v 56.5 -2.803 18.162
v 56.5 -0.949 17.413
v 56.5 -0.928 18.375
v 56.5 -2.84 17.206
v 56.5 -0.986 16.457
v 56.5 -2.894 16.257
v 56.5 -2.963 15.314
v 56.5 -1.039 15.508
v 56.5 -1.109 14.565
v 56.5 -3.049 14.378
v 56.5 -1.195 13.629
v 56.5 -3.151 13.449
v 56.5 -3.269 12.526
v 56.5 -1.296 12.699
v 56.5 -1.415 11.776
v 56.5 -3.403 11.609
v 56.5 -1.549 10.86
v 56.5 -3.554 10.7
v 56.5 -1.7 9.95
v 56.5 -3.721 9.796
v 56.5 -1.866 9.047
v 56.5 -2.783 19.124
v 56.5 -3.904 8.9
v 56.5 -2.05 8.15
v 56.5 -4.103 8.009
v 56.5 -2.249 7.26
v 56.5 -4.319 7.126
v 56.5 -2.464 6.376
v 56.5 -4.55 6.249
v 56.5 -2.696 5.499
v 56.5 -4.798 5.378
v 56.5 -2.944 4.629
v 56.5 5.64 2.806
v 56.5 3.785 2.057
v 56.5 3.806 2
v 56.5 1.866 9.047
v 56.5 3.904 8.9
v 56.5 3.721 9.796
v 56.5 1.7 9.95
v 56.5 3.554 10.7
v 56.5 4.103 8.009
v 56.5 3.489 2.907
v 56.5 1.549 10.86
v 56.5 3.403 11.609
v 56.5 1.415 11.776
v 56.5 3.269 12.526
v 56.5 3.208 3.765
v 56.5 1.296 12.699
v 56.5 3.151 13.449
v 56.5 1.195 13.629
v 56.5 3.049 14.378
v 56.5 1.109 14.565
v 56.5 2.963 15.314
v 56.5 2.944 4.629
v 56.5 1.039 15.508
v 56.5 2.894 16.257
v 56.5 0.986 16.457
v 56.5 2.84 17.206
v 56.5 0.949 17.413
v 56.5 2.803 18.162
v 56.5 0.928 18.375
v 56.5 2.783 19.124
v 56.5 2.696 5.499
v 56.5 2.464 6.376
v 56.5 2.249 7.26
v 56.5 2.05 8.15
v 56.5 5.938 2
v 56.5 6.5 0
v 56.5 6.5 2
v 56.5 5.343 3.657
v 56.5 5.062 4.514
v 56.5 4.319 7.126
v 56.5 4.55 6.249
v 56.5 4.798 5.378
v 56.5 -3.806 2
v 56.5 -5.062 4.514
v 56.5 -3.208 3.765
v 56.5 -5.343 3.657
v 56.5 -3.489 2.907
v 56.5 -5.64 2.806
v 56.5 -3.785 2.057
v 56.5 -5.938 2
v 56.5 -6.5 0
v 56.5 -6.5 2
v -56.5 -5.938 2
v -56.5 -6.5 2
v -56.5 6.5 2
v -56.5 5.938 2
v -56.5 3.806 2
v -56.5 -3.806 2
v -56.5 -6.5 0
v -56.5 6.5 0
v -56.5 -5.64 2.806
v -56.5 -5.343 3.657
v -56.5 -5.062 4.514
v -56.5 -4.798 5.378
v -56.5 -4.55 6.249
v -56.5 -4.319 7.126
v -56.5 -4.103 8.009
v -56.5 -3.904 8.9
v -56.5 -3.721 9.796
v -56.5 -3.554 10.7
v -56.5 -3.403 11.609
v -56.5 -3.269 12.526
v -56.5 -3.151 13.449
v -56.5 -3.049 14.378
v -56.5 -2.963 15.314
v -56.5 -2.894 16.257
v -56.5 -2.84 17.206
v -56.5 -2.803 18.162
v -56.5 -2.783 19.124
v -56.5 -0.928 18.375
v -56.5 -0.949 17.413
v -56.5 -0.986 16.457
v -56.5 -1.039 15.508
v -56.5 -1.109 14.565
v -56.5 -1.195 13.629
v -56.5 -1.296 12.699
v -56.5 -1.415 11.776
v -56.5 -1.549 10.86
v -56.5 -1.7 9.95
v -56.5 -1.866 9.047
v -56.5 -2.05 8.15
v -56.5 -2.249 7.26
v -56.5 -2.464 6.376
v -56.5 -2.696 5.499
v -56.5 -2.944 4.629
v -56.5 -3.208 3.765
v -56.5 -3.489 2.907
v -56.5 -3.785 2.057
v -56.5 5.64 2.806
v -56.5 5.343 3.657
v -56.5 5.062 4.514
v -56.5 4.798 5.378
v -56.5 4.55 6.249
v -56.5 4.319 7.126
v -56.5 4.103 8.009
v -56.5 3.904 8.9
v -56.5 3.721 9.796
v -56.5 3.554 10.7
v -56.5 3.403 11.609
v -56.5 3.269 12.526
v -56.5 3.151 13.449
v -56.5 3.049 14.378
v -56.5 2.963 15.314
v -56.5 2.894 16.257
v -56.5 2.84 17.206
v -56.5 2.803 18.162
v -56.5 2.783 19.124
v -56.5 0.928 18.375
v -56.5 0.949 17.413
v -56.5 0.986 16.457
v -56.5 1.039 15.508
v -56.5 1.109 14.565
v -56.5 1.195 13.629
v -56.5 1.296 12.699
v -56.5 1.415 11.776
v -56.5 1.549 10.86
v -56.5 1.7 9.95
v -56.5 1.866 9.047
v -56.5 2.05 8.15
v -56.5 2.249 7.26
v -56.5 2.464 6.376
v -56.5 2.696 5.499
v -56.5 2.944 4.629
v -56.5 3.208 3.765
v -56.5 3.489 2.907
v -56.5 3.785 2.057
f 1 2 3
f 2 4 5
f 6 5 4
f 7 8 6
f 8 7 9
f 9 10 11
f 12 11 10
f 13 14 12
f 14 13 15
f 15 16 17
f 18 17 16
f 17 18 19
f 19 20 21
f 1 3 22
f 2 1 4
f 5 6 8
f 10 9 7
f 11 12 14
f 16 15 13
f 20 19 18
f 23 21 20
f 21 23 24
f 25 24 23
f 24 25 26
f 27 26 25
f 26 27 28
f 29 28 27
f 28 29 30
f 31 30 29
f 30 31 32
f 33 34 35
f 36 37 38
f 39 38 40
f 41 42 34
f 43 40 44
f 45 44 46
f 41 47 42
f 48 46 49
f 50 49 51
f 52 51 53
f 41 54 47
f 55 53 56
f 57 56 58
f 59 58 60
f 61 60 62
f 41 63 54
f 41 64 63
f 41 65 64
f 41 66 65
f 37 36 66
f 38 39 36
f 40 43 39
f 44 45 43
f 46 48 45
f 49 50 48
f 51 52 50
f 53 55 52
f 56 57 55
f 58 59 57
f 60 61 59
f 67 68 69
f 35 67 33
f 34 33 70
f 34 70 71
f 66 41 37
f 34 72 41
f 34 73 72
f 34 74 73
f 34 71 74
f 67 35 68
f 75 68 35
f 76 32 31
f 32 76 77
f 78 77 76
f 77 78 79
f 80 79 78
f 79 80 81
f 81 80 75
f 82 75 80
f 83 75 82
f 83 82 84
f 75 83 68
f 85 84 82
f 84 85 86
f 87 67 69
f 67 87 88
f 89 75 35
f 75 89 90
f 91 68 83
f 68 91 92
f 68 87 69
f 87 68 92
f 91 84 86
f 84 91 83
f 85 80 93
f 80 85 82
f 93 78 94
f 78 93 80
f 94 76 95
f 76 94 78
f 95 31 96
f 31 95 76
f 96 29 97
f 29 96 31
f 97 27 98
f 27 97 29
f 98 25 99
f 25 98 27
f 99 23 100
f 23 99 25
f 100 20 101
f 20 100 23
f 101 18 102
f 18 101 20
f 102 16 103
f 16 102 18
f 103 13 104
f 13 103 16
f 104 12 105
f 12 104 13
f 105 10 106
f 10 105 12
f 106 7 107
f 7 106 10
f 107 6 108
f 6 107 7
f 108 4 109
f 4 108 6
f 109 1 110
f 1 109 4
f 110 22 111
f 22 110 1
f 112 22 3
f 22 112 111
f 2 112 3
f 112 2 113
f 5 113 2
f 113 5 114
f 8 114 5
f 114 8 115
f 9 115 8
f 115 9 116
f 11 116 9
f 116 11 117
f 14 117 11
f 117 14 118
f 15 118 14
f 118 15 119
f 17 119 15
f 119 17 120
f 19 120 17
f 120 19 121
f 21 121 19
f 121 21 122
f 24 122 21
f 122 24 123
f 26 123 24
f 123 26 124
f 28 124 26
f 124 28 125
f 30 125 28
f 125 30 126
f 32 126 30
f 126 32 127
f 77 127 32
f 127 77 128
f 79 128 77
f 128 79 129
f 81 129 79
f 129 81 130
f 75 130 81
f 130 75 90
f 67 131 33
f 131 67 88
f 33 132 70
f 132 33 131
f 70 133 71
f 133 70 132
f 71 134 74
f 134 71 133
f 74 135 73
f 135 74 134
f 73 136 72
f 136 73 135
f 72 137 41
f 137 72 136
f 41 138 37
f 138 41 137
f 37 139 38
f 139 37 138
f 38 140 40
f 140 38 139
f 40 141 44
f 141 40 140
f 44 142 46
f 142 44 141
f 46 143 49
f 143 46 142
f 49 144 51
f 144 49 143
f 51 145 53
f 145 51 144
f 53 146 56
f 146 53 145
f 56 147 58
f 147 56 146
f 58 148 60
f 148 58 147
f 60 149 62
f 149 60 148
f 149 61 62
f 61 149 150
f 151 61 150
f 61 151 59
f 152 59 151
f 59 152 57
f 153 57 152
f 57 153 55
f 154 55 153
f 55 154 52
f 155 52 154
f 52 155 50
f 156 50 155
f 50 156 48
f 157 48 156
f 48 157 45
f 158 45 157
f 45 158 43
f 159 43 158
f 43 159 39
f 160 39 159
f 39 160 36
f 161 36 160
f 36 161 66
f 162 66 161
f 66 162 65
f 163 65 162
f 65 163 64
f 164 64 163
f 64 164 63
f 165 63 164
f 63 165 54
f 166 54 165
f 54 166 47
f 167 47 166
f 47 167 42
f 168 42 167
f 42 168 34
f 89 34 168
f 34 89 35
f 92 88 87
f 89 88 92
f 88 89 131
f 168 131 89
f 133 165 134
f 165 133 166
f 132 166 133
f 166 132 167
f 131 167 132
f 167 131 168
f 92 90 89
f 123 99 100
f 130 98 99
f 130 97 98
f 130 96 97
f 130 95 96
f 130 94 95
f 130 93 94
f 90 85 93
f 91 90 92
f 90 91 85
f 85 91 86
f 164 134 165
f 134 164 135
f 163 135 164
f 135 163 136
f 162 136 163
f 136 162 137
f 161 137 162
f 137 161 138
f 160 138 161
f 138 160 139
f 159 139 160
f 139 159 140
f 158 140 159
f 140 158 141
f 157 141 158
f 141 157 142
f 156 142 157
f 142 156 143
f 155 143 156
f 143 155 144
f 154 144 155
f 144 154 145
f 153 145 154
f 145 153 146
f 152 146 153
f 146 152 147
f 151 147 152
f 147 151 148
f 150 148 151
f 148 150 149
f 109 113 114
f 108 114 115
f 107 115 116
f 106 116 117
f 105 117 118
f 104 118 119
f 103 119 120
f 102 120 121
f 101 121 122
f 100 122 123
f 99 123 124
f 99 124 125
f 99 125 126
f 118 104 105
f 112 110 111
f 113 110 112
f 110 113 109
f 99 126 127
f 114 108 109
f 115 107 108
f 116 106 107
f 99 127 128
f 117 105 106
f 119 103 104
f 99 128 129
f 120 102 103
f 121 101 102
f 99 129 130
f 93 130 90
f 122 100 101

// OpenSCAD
// file: common.scad
CENTER_SIZE = 9;
SLEEVE_REACH = 56.5;
GROOVE_WIDTH = 9;
WALL_HEIGHT = 10;
WALL_THICKNESS = 2;
BASE_THICKNESS = 2;
TOTAL_WIDTH = GROOVE_WIDTH + 2 * WALL_THICKNESS;
SLEEVE_LENGTH = SLEEVE_REACH - CENTER_SIZE/2;
DOWEL_DIAMETER = 4.5;
DOWEL_DEPTH = 3;
CARDBOARD_THICKNESS = 2;
GROOVE_BOTTOM = CARDBOARD_THICKNESS;
CURVE_POWER = 2;
CURVE_POINTS = 20;
TILT_ANGLE_EXTRA = 5;
FLEXIBLE_WALL_HEIGHT = WALL_HEIGHT * 2;
function wall_curve(z) =
    GROOVE_BOTTOM/2 + (GROOVE_WIDTH/2 - GROOVE_BOTTOM/2) * pow(z/(FLEXIBLE_WALL_HEIGHT - BASE_THICKNESS), CURVE_POWER);
module curved_wall_profile(side) {
    wall_h = FLEXIBLE_WALL_HEIGHT - BASE_THICKNESS;
    points_inner = [for (i = [0:CURVE_POINTS])
        [wall_curve(i * wall_h / CURVE_POINTS) * side,
         i * wall_h / CURVE_POINTS]
    ];
    points_outer = [for (i = [0:CURVE_POINTS])
        [(wall_curve(i * wall_h / CURVE_POINTS) + WALL_THICKNESS) * side,
         i * wall_h / CURVE_POINTS]
    ];
    all_points = concat(
        [[points_inner[0][0], 0]],
        points_inner,
        [points_outer[len(points_outer)-1]],
        [for (i = [len(points_outer)-1:-1:0]) points_outer[i]],
        [[points_outer[0][0], 0]]
    );
    polygon(all_points);
}
module draw_regular_wall_base(width) {
    translate([0, 0, BASE_THICKNESS])
        cube([width, WALL_THICKNESS, WALL_HEIGHT - BASE_THICKNESS]);
}
module draw_flexible_wall_base(width) {
    tilt_angle = atan((GROOVE_WIDTH/2 - GROOVE_BOTTOM/2) / (FLEXIBLE_WALL_HEIGHT - BASE_THICKNESS)) + TILT_ANGLE_EXTRA;
    rotate([0, 0, 90])
        rotate([tilt_angle + 6, 0, 0])
            rotate([90, 0, 90])
                linear_extrude(height = width)
                    curved_wall_profile(1);
}
module draw_center_base(with_dowel = false) {
    union() {
        translate([-TOTAL_WIDTH/2, -TOTAL_WIDTH/2, 0])
            cube([TOTAL_WIDTH, TOTAL_WIDTH, BASE_THICKNESS]);
        if (with_dowel) {
            translate([0, 0, -DOWEL_DEPTH])
                cylinder(h=DOWEL_DEPTH, d=DOWEL_DIAMETER, $fn=30);
        }
    }
}
module place_regular_center_wall(side) {
    if (side == 0) {
        translate([CENTER_SIZE/2 + WALL_THICKNESS, -TOTAL_WIDTH/2, 0])
            rotate([0, 0, 90])
                draw_regular_wall_base(TOTAL_WIDTH);
    } else if (side == 1) {
        translate([-TOTAL_WIDTH/2, CENTER_SIZE/2, 0])
            draw_regular_wall_base(TOTAL_WIDTH);
    } else if (side == 2) {
        translate([-CENTER_SIZE/2, -TOTAL_WIDTH/2, 0])
            rotate([0, 0, 90])
                draw_regular_wall_base(TOTAL_WIDTH);
    } else if (side == 3) {
        translate([-TOTAL_WIDTH/2, -CENTER_SIZE/2 - WALL_THICKNESS, 0])
            draw_regular_wall_base(TOTAL_WIDTH);
    }
}
module place_flexible_center_wall(side) {
    if (side == 0) {
        translate([CENTER_SIZE/2 - WALL_THICKNESS/2, TOTAL_WIDTH/2, 0])
            rotate([0, 0, 180])
                draw_flexible_wall_base(TOTAL_WIDTH);
    } else if (side == 1) {
        translate([-TOTAL_WIDTH/2, CENTER_SIZE/2 - WALL_THICKNESS/2, 0])
            rotate([0, 0, 270])
                draw_flexible_wall_base(TOTAL_WIDTH);
    } else if (side == 2) {
        translate([-CENTER_SIZE/2 + WALL_THICKNESS/2, -TOTAL_WIDTH/2, 0])
            draw_flexible_wall_base(TOTAL_WIDTH);
    } else if (side == 3) {
        translate([CENTER_SIZE/2 + WALL_THICKNESS, -TOTAL_WIDTH/2 + WALL_THICKNESS + WALL_THICKNESS/2, 0])
            rotate([0, 0, 90])
                draw_flexible_wall_base(TOTAL_WIDTH);
    }
}
module place_center_wall(side, wall_type = "regular") {
    if (wall_type == "regular") {
        place_regular_center_wall(side);
    } else if (wall_type == "flexible") {
        place_flexible_center_wall(side);
    }
}
module draw_sleeve_base(with_dowel = false) {
    union() {
        translate([0, -TOTAL_WIDTH/2, 0])
            cube([SLEEVE_LENGTH, TOTAL_WIDTH, BASE_THICKNESS]);
        if (with_dowel) {
            translate([25 - CENTER_SIZE/2, 0, -DOWEL_DEPTH])
                cylinder(h=DOWEL_DEPTH, d=DOWEL_DIAMETER, $fn=30);
            translate([50 - CENTER_SIZE/2, 0, -DOWEL_DEPTH])
                cylinder(h=DOWEL_DEPTH, d=DOWEL_DIAMETER, $fn=30);
        }
    }
}
module draw_regular_sleeve_wall(wall_side) {
    y_offset = (wall_side == "left") ? -TOTAL_WIDTH/2 : TOTAL_WIDTH/2 - WALL_THICKNESS;
    translate([0, y_offset, 0])
        draw_regular_wall_base(SLEEVE_LENGTH);
}
module draw_flexible_sleeve_wall(side) {
    if (side == "left") {
        translate([0, TOTAL_WIDTH/2 - WALL_THICKNESS/2 - WALL_THICKNESS, 0])
            rotate([0, 0, 270])
                draw_flexible_wall_base(SLEEVE_LENGTH);
    } else if (side == "right") {
        translate([SLEEVE_LENGTH, -TOTAL_WIDTH/2 + WALL_THICKNESS + WALL_THICKNESS/2, 0])
            rotate([0, 0, 90])
                draw_flexible_wall_base(SLEEVE_LENGTH);
    }
}
module draw_sleeve_wall(wall_side, wall_type = "regular") {
    if (wall_type == "regular") {
        draw_regular_sleeve_wall(wall_side);
    } else if (wall_type == "flexible") {
        draw_flexible_sleeve_wall(wall_side);
    }
}
module draw_full_sleeve(with_dowel = false, wall_type = "regular") {
    union() {
        draw_sleeve_base(with_dowel);
        draw_sleeve_wall("left", wall_type);
        draw_sleeve_wall("right", wall_type);
    }
}
module place_sleeve(side, with_dowel = false, wall_type = "regular") {
    if (side == 0) {
        translate([CENTER_SIZE/2, 0, 0])
            draw_full_sleeve(with_dowel, wall_type);
    } else if (side == 1) {
        rotate([0, 0, 90])
            translate([CENTER_SIZE/2, 0, 0])
                draw_full_sleeve(with_dowel, wall_type);
    } else if (side == 2) {
        rotate([0, 0, 180])
            translate([CENTER_SIZE/2, 0, 0])
                draw_full_sleeve(with_dowel, wall_type);
    } else if (side == 3) {
        rotate([0, 0, 270])
            translate([CENTER_SIZE/2, 0, 0])
                draw_full_sleeve(with_dowel, wall_type);
    }
}
module add_dowel(x, y, dowel_diameter, dowel_depth) {
    translate([x, y, -dowel_depth])
        cylinder(h=dowel_depth, d=dowel_diameter, $fn=30);
}
// main file
use <common.scad>

union() {
    draw_center_base(with_dowel = false);
    place_center_wall(1, "flexible");
    place_center_wall(3, "flexible");
    place_sleeve(0, with_dowel = false, wall_type = "flexible");
    place_sleeve(2, with_dowel = false, wall_type = "flexible");
}
